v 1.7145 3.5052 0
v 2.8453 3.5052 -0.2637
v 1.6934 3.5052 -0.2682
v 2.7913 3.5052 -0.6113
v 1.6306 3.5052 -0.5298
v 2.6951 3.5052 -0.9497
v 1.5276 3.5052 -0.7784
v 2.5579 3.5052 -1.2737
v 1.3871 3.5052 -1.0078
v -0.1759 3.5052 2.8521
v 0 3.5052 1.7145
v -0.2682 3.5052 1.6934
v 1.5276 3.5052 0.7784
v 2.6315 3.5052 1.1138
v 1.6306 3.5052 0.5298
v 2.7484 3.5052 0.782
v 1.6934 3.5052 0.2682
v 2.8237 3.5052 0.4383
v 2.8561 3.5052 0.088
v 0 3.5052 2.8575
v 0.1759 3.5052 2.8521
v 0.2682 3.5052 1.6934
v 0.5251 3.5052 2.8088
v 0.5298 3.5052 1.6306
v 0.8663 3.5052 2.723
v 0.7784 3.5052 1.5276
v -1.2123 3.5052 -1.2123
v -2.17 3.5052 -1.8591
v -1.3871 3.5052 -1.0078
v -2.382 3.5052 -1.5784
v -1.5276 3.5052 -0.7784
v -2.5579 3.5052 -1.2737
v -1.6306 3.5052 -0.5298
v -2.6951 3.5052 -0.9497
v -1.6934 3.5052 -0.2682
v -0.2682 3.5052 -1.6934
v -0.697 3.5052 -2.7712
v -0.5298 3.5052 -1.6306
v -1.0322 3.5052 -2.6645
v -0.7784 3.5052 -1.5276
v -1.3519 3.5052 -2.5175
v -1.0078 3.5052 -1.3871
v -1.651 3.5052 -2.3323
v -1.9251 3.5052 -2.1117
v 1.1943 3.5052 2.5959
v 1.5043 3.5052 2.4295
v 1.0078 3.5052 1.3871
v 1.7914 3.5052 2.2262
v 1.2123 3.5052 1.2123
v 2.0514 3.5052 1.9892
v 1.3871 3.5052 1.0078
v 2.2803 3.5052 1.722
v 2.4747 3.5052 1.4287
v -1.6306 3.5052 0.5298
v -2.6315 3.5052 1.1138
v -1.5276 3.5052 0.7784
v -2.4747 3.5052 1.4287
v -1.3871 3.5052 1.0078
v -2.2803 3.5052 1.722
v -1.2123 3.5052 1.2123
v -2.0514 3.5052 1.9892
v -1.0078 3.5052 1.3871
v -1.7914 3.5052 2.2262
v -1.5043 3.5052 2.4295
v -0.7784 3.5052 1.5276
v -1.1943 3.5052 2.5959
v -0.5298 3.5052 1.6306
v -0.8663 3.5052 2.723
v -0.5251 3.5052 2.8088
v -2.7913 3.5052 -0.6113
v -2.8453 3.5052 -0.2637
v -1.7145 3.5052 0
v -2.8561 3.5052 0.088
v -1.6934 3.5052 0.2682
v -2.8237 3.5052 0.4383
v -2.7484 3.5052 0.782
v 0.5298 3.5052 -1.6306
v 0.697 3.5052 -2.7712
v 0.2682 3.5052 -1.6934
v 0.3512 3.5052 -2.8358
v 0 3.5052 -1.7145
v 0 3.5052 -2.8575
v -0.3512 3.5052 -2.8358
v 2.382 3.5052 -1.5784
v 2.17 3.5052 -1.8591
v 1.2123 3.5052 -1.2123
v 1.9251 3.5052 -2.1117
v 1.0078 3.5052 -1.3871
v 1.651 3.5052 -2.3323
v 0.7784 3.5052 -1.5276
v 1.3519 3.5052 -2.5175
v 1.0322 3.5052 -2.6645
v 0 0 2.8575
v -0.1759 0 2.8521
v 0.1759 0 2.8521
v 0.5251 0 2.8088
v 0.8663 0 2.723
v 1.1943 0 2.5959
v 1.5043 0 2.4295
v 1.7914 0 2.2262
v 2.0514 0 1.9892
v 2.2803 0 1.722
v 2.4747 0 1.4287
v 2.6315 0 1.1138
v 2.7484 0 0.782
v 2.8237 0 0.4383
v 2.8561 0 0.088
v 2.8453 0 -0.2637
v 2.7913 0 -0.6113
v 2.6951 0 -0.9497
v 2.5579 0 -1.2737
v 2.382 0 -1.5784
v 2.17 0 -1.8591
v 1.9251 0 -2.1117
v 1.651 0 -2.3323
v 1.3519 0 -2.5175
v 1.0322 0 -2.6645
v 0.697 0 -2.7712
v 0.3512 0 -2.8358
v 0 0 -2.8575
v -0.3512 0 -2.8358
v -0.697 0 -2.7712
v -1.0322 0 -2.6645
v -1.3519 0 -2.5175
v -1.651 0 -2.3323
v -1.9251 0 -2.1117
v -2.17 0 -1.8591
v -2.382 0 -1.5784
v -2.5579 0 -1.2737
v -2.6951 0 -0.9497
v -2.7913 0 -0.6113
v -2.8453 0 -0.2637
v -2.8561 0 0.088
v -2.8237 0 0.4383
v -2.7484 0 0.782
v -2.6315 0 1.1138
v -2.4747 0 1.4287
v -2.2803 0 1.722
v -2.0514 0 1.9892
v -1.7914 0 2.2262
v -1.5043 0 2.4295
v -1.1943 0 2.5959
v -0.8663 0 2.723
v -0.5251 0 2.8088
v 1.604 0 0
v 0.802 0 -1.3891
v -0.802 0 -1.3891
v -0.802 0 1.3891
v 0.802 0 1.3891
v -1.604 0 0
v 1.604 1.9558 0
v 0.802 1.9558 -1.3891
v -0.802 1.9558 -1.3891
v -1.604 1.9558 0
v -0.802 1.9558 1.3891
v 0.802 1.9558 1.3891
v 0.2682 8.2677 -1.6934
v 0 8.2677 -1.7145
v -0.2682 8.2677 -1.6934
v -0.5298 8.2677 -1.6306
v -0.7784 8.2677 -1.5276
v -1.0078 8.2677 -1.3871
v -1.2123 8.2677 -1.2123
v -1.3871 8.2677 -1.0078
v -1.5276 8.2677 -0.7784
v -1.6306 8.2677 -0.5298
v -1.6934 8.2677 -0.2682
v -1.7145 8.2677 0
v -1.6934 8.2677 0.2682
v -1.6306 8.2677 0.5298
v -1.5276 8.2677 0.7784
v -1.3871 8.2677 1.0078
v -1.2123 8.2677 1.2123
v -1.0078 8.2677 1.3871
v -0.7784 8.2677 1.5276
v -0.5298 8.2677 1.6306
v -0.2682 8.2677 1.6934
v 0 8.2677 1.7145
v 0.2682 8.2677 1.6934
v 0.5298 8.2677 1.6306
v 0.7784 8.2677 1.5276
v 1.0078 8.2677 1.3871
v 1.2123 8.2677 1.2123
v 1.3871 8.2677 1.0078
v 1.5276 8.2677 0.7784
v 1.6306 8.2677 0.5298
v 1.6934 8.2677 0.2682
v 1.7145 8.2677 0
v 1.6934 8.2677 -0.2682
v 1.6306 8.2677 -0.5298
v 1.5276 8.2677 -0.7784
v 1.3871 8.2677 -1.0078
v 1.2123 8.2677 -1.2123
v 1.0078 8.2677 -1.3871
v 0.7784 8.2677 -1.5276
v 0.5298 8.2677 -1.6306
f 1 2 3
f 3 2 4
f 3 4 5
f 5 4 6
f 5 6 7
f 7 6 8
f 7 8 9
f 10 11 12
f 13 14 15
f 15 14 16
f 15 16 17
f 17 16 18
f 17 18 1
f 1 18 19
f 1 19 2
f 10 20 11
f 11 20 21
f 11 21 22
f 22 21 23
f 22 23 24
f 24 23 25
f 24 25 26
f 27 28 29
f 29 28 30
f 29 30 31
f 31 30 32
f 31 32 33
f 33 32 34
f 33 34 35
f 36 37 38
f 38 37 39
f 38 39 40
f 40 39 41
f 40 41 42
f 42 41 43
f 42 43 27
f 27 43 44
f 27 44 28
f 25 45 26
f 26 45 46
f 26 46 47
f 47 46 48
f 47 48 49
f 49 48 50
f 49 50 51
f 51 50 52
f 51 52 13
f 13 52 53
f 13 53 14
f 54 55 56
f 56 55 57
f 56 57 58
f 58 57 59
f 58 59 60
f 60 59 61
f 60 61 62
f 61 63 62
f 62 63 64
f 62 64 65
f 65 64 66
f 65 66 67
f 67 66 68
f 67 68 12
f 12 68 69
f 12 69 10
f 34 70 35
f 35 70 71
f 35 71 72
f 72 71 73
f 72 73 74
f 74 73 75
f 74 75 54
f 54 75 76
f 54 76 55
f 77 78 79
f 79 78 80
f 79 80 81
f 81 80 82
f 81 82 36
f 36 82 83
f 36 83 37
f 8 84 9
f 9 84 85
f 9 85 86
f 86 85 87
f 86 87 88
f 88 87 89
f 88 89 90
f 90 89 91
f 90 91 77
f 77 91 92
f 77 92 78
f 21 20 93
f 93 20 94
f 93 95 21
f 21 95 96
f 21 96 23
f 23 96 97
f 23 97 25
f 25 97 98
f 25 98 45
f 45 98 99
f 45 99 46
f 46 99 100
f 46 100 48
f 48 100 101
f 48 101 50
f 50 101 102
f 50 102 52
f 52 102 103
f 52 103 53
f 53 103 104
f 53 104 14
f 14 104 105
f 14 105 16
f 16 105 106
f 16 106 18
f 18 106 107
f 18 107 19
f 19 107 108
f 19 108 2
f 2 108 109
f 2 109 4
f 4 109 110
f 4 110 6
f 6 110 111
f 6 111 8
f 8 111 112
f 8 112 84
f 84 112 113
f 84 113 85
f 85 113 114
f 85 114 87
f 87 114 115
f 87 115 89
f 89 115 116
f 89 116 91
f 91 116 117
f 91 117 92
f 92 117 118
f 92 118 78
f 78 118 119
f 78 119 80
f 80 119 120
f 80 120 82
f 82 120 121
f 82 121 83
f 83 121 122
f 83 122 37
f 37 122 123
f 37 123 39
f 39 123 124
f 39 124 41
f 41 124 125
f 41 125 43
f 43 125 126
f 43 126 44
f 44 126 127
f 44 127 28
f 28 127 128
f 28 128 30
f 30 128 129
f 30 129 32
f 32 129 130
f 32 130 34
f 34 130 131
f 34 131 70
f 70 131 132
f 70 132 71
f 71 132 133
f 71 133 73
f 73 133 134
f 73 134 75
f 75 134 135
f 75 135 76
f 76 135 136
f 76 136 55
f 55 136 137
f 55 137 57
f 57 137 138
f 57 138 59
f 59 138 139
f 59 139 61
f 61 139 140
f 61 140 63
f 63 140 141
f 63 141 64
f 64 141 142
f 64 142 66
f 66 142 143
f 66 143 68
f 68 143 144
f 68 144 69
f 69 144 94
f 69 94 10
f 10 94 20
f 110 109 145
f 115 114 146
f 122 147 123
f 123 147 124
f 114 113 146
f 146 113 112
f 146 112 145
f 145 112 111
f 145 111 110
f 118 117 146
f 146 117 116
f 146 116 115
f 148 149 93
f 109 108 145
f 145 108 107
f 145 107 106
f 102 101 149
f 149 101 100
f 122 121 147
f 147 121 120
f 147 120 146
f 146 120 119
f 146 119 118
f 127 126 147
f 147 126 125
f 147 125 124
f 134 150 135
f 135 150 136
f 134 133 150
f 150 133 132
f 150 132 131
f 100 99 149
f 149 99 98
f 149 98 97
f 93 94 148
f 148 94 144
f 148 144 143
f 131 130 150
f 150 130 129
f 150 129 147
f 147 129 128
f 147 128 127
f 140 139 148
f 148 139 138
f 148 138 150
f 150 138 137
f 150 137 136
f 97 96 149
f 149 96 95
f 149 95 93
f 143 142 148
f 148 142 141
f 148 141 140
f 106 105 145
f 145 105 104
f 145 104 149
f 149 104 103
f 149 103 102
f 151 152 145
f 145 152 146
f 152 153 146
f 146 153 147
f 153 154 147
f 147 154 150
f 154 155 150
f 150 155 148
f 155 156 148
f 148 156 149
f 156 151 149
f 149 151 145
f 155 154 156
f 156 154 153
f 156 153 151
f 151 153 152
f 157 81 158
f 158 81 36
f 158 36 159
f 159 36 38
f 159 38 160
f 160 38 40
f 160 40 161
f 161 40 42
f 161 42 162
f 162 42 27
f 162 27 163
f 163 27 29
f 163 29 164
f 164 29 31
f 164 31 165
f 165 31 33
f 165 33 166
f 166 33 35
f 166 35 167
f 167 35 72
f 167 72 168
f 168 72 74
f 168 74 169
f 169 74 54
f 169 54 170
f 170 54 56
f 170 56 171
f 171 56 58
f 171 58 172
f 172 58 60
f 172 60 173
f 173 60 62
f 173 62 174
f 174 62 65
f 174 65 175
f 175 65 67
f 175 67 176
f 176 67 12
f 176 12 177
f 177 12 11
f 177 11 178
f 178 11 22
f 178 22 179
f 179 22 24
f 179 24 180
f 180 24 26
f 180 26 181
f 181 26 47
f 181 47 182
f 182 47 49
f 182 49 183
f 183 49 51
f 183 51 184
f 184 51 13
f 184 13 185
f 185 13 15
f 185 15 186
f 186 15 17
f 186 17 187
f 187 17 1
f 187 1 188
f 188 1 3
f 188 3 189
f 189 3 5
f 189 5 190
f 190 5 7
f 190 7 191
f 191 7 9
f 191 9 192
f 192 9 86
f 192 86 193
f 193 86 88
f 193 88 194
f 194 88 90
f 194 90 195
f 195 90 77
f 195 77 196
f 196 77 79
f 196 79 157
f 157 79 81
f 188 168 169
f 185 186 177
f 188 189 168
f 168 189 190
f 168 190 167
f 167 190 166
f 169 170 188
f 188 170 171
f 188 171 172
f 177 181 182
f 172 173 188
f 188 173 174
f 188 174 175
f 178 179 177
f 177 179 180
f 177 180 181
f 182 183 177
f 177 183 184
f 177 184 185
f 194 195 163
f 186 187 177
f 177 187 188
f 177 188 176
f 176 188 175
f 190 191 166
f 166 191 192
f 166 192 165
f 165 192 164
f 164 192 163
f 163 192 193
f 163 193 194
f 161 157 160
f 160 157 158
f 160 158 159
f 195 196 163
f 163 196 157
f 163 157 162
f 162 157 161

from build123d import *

# Parameters (mm, degrees)
SKETCH1_R           = 2.8575
BOSS_EXTRUDE1_DEPTH = 3.5052
CUT_EXTRUDE1_DEPTH  = 1.9558
SKETCH3_R           = 1.7145
BOSS_EXTRUDE2_DEPTH = 4.7625


with BuildPart() as part:
    # Sketch1 → Boss-Extrude1 (new body)
    with BuildSketch(Plane(origin=(0, 0, 0), x_dir=(1, 0, 0), z_dir=(0, 1, 0))):
        Circle(SKETCH1_R)
    extrude(amount=BOSS_EXTRUDE1_DEPTH)

    # Sketch2 → Cut-Extrude1 (cut)
    with BuildSketch(Plane.XZ):
        Polygon((1.603951217, 0), (0.801975608, 1.3890625), (-0.801975608, 1.3890625), (-1.603951217, 0), (-0.801975608, -1.3890625), (0.801975608, -1.3890625), align=None)
    extrude(amount=-CUT_EXTRUDE1_DEPTH, mode=Mode.SUBTRACT)

    # Sketch3 → Boss-Extrude2 (add)
    with BuildSketch(Plane(origin=(0, 3.5052, 0), x_dir=(1, 0, 0), z_dir=(0, 1, 0))):
        Circle(SKETCH3_R)
    extrude(amount=BOSS_EXTRUDE2_DEPTH)


solid = part.part
